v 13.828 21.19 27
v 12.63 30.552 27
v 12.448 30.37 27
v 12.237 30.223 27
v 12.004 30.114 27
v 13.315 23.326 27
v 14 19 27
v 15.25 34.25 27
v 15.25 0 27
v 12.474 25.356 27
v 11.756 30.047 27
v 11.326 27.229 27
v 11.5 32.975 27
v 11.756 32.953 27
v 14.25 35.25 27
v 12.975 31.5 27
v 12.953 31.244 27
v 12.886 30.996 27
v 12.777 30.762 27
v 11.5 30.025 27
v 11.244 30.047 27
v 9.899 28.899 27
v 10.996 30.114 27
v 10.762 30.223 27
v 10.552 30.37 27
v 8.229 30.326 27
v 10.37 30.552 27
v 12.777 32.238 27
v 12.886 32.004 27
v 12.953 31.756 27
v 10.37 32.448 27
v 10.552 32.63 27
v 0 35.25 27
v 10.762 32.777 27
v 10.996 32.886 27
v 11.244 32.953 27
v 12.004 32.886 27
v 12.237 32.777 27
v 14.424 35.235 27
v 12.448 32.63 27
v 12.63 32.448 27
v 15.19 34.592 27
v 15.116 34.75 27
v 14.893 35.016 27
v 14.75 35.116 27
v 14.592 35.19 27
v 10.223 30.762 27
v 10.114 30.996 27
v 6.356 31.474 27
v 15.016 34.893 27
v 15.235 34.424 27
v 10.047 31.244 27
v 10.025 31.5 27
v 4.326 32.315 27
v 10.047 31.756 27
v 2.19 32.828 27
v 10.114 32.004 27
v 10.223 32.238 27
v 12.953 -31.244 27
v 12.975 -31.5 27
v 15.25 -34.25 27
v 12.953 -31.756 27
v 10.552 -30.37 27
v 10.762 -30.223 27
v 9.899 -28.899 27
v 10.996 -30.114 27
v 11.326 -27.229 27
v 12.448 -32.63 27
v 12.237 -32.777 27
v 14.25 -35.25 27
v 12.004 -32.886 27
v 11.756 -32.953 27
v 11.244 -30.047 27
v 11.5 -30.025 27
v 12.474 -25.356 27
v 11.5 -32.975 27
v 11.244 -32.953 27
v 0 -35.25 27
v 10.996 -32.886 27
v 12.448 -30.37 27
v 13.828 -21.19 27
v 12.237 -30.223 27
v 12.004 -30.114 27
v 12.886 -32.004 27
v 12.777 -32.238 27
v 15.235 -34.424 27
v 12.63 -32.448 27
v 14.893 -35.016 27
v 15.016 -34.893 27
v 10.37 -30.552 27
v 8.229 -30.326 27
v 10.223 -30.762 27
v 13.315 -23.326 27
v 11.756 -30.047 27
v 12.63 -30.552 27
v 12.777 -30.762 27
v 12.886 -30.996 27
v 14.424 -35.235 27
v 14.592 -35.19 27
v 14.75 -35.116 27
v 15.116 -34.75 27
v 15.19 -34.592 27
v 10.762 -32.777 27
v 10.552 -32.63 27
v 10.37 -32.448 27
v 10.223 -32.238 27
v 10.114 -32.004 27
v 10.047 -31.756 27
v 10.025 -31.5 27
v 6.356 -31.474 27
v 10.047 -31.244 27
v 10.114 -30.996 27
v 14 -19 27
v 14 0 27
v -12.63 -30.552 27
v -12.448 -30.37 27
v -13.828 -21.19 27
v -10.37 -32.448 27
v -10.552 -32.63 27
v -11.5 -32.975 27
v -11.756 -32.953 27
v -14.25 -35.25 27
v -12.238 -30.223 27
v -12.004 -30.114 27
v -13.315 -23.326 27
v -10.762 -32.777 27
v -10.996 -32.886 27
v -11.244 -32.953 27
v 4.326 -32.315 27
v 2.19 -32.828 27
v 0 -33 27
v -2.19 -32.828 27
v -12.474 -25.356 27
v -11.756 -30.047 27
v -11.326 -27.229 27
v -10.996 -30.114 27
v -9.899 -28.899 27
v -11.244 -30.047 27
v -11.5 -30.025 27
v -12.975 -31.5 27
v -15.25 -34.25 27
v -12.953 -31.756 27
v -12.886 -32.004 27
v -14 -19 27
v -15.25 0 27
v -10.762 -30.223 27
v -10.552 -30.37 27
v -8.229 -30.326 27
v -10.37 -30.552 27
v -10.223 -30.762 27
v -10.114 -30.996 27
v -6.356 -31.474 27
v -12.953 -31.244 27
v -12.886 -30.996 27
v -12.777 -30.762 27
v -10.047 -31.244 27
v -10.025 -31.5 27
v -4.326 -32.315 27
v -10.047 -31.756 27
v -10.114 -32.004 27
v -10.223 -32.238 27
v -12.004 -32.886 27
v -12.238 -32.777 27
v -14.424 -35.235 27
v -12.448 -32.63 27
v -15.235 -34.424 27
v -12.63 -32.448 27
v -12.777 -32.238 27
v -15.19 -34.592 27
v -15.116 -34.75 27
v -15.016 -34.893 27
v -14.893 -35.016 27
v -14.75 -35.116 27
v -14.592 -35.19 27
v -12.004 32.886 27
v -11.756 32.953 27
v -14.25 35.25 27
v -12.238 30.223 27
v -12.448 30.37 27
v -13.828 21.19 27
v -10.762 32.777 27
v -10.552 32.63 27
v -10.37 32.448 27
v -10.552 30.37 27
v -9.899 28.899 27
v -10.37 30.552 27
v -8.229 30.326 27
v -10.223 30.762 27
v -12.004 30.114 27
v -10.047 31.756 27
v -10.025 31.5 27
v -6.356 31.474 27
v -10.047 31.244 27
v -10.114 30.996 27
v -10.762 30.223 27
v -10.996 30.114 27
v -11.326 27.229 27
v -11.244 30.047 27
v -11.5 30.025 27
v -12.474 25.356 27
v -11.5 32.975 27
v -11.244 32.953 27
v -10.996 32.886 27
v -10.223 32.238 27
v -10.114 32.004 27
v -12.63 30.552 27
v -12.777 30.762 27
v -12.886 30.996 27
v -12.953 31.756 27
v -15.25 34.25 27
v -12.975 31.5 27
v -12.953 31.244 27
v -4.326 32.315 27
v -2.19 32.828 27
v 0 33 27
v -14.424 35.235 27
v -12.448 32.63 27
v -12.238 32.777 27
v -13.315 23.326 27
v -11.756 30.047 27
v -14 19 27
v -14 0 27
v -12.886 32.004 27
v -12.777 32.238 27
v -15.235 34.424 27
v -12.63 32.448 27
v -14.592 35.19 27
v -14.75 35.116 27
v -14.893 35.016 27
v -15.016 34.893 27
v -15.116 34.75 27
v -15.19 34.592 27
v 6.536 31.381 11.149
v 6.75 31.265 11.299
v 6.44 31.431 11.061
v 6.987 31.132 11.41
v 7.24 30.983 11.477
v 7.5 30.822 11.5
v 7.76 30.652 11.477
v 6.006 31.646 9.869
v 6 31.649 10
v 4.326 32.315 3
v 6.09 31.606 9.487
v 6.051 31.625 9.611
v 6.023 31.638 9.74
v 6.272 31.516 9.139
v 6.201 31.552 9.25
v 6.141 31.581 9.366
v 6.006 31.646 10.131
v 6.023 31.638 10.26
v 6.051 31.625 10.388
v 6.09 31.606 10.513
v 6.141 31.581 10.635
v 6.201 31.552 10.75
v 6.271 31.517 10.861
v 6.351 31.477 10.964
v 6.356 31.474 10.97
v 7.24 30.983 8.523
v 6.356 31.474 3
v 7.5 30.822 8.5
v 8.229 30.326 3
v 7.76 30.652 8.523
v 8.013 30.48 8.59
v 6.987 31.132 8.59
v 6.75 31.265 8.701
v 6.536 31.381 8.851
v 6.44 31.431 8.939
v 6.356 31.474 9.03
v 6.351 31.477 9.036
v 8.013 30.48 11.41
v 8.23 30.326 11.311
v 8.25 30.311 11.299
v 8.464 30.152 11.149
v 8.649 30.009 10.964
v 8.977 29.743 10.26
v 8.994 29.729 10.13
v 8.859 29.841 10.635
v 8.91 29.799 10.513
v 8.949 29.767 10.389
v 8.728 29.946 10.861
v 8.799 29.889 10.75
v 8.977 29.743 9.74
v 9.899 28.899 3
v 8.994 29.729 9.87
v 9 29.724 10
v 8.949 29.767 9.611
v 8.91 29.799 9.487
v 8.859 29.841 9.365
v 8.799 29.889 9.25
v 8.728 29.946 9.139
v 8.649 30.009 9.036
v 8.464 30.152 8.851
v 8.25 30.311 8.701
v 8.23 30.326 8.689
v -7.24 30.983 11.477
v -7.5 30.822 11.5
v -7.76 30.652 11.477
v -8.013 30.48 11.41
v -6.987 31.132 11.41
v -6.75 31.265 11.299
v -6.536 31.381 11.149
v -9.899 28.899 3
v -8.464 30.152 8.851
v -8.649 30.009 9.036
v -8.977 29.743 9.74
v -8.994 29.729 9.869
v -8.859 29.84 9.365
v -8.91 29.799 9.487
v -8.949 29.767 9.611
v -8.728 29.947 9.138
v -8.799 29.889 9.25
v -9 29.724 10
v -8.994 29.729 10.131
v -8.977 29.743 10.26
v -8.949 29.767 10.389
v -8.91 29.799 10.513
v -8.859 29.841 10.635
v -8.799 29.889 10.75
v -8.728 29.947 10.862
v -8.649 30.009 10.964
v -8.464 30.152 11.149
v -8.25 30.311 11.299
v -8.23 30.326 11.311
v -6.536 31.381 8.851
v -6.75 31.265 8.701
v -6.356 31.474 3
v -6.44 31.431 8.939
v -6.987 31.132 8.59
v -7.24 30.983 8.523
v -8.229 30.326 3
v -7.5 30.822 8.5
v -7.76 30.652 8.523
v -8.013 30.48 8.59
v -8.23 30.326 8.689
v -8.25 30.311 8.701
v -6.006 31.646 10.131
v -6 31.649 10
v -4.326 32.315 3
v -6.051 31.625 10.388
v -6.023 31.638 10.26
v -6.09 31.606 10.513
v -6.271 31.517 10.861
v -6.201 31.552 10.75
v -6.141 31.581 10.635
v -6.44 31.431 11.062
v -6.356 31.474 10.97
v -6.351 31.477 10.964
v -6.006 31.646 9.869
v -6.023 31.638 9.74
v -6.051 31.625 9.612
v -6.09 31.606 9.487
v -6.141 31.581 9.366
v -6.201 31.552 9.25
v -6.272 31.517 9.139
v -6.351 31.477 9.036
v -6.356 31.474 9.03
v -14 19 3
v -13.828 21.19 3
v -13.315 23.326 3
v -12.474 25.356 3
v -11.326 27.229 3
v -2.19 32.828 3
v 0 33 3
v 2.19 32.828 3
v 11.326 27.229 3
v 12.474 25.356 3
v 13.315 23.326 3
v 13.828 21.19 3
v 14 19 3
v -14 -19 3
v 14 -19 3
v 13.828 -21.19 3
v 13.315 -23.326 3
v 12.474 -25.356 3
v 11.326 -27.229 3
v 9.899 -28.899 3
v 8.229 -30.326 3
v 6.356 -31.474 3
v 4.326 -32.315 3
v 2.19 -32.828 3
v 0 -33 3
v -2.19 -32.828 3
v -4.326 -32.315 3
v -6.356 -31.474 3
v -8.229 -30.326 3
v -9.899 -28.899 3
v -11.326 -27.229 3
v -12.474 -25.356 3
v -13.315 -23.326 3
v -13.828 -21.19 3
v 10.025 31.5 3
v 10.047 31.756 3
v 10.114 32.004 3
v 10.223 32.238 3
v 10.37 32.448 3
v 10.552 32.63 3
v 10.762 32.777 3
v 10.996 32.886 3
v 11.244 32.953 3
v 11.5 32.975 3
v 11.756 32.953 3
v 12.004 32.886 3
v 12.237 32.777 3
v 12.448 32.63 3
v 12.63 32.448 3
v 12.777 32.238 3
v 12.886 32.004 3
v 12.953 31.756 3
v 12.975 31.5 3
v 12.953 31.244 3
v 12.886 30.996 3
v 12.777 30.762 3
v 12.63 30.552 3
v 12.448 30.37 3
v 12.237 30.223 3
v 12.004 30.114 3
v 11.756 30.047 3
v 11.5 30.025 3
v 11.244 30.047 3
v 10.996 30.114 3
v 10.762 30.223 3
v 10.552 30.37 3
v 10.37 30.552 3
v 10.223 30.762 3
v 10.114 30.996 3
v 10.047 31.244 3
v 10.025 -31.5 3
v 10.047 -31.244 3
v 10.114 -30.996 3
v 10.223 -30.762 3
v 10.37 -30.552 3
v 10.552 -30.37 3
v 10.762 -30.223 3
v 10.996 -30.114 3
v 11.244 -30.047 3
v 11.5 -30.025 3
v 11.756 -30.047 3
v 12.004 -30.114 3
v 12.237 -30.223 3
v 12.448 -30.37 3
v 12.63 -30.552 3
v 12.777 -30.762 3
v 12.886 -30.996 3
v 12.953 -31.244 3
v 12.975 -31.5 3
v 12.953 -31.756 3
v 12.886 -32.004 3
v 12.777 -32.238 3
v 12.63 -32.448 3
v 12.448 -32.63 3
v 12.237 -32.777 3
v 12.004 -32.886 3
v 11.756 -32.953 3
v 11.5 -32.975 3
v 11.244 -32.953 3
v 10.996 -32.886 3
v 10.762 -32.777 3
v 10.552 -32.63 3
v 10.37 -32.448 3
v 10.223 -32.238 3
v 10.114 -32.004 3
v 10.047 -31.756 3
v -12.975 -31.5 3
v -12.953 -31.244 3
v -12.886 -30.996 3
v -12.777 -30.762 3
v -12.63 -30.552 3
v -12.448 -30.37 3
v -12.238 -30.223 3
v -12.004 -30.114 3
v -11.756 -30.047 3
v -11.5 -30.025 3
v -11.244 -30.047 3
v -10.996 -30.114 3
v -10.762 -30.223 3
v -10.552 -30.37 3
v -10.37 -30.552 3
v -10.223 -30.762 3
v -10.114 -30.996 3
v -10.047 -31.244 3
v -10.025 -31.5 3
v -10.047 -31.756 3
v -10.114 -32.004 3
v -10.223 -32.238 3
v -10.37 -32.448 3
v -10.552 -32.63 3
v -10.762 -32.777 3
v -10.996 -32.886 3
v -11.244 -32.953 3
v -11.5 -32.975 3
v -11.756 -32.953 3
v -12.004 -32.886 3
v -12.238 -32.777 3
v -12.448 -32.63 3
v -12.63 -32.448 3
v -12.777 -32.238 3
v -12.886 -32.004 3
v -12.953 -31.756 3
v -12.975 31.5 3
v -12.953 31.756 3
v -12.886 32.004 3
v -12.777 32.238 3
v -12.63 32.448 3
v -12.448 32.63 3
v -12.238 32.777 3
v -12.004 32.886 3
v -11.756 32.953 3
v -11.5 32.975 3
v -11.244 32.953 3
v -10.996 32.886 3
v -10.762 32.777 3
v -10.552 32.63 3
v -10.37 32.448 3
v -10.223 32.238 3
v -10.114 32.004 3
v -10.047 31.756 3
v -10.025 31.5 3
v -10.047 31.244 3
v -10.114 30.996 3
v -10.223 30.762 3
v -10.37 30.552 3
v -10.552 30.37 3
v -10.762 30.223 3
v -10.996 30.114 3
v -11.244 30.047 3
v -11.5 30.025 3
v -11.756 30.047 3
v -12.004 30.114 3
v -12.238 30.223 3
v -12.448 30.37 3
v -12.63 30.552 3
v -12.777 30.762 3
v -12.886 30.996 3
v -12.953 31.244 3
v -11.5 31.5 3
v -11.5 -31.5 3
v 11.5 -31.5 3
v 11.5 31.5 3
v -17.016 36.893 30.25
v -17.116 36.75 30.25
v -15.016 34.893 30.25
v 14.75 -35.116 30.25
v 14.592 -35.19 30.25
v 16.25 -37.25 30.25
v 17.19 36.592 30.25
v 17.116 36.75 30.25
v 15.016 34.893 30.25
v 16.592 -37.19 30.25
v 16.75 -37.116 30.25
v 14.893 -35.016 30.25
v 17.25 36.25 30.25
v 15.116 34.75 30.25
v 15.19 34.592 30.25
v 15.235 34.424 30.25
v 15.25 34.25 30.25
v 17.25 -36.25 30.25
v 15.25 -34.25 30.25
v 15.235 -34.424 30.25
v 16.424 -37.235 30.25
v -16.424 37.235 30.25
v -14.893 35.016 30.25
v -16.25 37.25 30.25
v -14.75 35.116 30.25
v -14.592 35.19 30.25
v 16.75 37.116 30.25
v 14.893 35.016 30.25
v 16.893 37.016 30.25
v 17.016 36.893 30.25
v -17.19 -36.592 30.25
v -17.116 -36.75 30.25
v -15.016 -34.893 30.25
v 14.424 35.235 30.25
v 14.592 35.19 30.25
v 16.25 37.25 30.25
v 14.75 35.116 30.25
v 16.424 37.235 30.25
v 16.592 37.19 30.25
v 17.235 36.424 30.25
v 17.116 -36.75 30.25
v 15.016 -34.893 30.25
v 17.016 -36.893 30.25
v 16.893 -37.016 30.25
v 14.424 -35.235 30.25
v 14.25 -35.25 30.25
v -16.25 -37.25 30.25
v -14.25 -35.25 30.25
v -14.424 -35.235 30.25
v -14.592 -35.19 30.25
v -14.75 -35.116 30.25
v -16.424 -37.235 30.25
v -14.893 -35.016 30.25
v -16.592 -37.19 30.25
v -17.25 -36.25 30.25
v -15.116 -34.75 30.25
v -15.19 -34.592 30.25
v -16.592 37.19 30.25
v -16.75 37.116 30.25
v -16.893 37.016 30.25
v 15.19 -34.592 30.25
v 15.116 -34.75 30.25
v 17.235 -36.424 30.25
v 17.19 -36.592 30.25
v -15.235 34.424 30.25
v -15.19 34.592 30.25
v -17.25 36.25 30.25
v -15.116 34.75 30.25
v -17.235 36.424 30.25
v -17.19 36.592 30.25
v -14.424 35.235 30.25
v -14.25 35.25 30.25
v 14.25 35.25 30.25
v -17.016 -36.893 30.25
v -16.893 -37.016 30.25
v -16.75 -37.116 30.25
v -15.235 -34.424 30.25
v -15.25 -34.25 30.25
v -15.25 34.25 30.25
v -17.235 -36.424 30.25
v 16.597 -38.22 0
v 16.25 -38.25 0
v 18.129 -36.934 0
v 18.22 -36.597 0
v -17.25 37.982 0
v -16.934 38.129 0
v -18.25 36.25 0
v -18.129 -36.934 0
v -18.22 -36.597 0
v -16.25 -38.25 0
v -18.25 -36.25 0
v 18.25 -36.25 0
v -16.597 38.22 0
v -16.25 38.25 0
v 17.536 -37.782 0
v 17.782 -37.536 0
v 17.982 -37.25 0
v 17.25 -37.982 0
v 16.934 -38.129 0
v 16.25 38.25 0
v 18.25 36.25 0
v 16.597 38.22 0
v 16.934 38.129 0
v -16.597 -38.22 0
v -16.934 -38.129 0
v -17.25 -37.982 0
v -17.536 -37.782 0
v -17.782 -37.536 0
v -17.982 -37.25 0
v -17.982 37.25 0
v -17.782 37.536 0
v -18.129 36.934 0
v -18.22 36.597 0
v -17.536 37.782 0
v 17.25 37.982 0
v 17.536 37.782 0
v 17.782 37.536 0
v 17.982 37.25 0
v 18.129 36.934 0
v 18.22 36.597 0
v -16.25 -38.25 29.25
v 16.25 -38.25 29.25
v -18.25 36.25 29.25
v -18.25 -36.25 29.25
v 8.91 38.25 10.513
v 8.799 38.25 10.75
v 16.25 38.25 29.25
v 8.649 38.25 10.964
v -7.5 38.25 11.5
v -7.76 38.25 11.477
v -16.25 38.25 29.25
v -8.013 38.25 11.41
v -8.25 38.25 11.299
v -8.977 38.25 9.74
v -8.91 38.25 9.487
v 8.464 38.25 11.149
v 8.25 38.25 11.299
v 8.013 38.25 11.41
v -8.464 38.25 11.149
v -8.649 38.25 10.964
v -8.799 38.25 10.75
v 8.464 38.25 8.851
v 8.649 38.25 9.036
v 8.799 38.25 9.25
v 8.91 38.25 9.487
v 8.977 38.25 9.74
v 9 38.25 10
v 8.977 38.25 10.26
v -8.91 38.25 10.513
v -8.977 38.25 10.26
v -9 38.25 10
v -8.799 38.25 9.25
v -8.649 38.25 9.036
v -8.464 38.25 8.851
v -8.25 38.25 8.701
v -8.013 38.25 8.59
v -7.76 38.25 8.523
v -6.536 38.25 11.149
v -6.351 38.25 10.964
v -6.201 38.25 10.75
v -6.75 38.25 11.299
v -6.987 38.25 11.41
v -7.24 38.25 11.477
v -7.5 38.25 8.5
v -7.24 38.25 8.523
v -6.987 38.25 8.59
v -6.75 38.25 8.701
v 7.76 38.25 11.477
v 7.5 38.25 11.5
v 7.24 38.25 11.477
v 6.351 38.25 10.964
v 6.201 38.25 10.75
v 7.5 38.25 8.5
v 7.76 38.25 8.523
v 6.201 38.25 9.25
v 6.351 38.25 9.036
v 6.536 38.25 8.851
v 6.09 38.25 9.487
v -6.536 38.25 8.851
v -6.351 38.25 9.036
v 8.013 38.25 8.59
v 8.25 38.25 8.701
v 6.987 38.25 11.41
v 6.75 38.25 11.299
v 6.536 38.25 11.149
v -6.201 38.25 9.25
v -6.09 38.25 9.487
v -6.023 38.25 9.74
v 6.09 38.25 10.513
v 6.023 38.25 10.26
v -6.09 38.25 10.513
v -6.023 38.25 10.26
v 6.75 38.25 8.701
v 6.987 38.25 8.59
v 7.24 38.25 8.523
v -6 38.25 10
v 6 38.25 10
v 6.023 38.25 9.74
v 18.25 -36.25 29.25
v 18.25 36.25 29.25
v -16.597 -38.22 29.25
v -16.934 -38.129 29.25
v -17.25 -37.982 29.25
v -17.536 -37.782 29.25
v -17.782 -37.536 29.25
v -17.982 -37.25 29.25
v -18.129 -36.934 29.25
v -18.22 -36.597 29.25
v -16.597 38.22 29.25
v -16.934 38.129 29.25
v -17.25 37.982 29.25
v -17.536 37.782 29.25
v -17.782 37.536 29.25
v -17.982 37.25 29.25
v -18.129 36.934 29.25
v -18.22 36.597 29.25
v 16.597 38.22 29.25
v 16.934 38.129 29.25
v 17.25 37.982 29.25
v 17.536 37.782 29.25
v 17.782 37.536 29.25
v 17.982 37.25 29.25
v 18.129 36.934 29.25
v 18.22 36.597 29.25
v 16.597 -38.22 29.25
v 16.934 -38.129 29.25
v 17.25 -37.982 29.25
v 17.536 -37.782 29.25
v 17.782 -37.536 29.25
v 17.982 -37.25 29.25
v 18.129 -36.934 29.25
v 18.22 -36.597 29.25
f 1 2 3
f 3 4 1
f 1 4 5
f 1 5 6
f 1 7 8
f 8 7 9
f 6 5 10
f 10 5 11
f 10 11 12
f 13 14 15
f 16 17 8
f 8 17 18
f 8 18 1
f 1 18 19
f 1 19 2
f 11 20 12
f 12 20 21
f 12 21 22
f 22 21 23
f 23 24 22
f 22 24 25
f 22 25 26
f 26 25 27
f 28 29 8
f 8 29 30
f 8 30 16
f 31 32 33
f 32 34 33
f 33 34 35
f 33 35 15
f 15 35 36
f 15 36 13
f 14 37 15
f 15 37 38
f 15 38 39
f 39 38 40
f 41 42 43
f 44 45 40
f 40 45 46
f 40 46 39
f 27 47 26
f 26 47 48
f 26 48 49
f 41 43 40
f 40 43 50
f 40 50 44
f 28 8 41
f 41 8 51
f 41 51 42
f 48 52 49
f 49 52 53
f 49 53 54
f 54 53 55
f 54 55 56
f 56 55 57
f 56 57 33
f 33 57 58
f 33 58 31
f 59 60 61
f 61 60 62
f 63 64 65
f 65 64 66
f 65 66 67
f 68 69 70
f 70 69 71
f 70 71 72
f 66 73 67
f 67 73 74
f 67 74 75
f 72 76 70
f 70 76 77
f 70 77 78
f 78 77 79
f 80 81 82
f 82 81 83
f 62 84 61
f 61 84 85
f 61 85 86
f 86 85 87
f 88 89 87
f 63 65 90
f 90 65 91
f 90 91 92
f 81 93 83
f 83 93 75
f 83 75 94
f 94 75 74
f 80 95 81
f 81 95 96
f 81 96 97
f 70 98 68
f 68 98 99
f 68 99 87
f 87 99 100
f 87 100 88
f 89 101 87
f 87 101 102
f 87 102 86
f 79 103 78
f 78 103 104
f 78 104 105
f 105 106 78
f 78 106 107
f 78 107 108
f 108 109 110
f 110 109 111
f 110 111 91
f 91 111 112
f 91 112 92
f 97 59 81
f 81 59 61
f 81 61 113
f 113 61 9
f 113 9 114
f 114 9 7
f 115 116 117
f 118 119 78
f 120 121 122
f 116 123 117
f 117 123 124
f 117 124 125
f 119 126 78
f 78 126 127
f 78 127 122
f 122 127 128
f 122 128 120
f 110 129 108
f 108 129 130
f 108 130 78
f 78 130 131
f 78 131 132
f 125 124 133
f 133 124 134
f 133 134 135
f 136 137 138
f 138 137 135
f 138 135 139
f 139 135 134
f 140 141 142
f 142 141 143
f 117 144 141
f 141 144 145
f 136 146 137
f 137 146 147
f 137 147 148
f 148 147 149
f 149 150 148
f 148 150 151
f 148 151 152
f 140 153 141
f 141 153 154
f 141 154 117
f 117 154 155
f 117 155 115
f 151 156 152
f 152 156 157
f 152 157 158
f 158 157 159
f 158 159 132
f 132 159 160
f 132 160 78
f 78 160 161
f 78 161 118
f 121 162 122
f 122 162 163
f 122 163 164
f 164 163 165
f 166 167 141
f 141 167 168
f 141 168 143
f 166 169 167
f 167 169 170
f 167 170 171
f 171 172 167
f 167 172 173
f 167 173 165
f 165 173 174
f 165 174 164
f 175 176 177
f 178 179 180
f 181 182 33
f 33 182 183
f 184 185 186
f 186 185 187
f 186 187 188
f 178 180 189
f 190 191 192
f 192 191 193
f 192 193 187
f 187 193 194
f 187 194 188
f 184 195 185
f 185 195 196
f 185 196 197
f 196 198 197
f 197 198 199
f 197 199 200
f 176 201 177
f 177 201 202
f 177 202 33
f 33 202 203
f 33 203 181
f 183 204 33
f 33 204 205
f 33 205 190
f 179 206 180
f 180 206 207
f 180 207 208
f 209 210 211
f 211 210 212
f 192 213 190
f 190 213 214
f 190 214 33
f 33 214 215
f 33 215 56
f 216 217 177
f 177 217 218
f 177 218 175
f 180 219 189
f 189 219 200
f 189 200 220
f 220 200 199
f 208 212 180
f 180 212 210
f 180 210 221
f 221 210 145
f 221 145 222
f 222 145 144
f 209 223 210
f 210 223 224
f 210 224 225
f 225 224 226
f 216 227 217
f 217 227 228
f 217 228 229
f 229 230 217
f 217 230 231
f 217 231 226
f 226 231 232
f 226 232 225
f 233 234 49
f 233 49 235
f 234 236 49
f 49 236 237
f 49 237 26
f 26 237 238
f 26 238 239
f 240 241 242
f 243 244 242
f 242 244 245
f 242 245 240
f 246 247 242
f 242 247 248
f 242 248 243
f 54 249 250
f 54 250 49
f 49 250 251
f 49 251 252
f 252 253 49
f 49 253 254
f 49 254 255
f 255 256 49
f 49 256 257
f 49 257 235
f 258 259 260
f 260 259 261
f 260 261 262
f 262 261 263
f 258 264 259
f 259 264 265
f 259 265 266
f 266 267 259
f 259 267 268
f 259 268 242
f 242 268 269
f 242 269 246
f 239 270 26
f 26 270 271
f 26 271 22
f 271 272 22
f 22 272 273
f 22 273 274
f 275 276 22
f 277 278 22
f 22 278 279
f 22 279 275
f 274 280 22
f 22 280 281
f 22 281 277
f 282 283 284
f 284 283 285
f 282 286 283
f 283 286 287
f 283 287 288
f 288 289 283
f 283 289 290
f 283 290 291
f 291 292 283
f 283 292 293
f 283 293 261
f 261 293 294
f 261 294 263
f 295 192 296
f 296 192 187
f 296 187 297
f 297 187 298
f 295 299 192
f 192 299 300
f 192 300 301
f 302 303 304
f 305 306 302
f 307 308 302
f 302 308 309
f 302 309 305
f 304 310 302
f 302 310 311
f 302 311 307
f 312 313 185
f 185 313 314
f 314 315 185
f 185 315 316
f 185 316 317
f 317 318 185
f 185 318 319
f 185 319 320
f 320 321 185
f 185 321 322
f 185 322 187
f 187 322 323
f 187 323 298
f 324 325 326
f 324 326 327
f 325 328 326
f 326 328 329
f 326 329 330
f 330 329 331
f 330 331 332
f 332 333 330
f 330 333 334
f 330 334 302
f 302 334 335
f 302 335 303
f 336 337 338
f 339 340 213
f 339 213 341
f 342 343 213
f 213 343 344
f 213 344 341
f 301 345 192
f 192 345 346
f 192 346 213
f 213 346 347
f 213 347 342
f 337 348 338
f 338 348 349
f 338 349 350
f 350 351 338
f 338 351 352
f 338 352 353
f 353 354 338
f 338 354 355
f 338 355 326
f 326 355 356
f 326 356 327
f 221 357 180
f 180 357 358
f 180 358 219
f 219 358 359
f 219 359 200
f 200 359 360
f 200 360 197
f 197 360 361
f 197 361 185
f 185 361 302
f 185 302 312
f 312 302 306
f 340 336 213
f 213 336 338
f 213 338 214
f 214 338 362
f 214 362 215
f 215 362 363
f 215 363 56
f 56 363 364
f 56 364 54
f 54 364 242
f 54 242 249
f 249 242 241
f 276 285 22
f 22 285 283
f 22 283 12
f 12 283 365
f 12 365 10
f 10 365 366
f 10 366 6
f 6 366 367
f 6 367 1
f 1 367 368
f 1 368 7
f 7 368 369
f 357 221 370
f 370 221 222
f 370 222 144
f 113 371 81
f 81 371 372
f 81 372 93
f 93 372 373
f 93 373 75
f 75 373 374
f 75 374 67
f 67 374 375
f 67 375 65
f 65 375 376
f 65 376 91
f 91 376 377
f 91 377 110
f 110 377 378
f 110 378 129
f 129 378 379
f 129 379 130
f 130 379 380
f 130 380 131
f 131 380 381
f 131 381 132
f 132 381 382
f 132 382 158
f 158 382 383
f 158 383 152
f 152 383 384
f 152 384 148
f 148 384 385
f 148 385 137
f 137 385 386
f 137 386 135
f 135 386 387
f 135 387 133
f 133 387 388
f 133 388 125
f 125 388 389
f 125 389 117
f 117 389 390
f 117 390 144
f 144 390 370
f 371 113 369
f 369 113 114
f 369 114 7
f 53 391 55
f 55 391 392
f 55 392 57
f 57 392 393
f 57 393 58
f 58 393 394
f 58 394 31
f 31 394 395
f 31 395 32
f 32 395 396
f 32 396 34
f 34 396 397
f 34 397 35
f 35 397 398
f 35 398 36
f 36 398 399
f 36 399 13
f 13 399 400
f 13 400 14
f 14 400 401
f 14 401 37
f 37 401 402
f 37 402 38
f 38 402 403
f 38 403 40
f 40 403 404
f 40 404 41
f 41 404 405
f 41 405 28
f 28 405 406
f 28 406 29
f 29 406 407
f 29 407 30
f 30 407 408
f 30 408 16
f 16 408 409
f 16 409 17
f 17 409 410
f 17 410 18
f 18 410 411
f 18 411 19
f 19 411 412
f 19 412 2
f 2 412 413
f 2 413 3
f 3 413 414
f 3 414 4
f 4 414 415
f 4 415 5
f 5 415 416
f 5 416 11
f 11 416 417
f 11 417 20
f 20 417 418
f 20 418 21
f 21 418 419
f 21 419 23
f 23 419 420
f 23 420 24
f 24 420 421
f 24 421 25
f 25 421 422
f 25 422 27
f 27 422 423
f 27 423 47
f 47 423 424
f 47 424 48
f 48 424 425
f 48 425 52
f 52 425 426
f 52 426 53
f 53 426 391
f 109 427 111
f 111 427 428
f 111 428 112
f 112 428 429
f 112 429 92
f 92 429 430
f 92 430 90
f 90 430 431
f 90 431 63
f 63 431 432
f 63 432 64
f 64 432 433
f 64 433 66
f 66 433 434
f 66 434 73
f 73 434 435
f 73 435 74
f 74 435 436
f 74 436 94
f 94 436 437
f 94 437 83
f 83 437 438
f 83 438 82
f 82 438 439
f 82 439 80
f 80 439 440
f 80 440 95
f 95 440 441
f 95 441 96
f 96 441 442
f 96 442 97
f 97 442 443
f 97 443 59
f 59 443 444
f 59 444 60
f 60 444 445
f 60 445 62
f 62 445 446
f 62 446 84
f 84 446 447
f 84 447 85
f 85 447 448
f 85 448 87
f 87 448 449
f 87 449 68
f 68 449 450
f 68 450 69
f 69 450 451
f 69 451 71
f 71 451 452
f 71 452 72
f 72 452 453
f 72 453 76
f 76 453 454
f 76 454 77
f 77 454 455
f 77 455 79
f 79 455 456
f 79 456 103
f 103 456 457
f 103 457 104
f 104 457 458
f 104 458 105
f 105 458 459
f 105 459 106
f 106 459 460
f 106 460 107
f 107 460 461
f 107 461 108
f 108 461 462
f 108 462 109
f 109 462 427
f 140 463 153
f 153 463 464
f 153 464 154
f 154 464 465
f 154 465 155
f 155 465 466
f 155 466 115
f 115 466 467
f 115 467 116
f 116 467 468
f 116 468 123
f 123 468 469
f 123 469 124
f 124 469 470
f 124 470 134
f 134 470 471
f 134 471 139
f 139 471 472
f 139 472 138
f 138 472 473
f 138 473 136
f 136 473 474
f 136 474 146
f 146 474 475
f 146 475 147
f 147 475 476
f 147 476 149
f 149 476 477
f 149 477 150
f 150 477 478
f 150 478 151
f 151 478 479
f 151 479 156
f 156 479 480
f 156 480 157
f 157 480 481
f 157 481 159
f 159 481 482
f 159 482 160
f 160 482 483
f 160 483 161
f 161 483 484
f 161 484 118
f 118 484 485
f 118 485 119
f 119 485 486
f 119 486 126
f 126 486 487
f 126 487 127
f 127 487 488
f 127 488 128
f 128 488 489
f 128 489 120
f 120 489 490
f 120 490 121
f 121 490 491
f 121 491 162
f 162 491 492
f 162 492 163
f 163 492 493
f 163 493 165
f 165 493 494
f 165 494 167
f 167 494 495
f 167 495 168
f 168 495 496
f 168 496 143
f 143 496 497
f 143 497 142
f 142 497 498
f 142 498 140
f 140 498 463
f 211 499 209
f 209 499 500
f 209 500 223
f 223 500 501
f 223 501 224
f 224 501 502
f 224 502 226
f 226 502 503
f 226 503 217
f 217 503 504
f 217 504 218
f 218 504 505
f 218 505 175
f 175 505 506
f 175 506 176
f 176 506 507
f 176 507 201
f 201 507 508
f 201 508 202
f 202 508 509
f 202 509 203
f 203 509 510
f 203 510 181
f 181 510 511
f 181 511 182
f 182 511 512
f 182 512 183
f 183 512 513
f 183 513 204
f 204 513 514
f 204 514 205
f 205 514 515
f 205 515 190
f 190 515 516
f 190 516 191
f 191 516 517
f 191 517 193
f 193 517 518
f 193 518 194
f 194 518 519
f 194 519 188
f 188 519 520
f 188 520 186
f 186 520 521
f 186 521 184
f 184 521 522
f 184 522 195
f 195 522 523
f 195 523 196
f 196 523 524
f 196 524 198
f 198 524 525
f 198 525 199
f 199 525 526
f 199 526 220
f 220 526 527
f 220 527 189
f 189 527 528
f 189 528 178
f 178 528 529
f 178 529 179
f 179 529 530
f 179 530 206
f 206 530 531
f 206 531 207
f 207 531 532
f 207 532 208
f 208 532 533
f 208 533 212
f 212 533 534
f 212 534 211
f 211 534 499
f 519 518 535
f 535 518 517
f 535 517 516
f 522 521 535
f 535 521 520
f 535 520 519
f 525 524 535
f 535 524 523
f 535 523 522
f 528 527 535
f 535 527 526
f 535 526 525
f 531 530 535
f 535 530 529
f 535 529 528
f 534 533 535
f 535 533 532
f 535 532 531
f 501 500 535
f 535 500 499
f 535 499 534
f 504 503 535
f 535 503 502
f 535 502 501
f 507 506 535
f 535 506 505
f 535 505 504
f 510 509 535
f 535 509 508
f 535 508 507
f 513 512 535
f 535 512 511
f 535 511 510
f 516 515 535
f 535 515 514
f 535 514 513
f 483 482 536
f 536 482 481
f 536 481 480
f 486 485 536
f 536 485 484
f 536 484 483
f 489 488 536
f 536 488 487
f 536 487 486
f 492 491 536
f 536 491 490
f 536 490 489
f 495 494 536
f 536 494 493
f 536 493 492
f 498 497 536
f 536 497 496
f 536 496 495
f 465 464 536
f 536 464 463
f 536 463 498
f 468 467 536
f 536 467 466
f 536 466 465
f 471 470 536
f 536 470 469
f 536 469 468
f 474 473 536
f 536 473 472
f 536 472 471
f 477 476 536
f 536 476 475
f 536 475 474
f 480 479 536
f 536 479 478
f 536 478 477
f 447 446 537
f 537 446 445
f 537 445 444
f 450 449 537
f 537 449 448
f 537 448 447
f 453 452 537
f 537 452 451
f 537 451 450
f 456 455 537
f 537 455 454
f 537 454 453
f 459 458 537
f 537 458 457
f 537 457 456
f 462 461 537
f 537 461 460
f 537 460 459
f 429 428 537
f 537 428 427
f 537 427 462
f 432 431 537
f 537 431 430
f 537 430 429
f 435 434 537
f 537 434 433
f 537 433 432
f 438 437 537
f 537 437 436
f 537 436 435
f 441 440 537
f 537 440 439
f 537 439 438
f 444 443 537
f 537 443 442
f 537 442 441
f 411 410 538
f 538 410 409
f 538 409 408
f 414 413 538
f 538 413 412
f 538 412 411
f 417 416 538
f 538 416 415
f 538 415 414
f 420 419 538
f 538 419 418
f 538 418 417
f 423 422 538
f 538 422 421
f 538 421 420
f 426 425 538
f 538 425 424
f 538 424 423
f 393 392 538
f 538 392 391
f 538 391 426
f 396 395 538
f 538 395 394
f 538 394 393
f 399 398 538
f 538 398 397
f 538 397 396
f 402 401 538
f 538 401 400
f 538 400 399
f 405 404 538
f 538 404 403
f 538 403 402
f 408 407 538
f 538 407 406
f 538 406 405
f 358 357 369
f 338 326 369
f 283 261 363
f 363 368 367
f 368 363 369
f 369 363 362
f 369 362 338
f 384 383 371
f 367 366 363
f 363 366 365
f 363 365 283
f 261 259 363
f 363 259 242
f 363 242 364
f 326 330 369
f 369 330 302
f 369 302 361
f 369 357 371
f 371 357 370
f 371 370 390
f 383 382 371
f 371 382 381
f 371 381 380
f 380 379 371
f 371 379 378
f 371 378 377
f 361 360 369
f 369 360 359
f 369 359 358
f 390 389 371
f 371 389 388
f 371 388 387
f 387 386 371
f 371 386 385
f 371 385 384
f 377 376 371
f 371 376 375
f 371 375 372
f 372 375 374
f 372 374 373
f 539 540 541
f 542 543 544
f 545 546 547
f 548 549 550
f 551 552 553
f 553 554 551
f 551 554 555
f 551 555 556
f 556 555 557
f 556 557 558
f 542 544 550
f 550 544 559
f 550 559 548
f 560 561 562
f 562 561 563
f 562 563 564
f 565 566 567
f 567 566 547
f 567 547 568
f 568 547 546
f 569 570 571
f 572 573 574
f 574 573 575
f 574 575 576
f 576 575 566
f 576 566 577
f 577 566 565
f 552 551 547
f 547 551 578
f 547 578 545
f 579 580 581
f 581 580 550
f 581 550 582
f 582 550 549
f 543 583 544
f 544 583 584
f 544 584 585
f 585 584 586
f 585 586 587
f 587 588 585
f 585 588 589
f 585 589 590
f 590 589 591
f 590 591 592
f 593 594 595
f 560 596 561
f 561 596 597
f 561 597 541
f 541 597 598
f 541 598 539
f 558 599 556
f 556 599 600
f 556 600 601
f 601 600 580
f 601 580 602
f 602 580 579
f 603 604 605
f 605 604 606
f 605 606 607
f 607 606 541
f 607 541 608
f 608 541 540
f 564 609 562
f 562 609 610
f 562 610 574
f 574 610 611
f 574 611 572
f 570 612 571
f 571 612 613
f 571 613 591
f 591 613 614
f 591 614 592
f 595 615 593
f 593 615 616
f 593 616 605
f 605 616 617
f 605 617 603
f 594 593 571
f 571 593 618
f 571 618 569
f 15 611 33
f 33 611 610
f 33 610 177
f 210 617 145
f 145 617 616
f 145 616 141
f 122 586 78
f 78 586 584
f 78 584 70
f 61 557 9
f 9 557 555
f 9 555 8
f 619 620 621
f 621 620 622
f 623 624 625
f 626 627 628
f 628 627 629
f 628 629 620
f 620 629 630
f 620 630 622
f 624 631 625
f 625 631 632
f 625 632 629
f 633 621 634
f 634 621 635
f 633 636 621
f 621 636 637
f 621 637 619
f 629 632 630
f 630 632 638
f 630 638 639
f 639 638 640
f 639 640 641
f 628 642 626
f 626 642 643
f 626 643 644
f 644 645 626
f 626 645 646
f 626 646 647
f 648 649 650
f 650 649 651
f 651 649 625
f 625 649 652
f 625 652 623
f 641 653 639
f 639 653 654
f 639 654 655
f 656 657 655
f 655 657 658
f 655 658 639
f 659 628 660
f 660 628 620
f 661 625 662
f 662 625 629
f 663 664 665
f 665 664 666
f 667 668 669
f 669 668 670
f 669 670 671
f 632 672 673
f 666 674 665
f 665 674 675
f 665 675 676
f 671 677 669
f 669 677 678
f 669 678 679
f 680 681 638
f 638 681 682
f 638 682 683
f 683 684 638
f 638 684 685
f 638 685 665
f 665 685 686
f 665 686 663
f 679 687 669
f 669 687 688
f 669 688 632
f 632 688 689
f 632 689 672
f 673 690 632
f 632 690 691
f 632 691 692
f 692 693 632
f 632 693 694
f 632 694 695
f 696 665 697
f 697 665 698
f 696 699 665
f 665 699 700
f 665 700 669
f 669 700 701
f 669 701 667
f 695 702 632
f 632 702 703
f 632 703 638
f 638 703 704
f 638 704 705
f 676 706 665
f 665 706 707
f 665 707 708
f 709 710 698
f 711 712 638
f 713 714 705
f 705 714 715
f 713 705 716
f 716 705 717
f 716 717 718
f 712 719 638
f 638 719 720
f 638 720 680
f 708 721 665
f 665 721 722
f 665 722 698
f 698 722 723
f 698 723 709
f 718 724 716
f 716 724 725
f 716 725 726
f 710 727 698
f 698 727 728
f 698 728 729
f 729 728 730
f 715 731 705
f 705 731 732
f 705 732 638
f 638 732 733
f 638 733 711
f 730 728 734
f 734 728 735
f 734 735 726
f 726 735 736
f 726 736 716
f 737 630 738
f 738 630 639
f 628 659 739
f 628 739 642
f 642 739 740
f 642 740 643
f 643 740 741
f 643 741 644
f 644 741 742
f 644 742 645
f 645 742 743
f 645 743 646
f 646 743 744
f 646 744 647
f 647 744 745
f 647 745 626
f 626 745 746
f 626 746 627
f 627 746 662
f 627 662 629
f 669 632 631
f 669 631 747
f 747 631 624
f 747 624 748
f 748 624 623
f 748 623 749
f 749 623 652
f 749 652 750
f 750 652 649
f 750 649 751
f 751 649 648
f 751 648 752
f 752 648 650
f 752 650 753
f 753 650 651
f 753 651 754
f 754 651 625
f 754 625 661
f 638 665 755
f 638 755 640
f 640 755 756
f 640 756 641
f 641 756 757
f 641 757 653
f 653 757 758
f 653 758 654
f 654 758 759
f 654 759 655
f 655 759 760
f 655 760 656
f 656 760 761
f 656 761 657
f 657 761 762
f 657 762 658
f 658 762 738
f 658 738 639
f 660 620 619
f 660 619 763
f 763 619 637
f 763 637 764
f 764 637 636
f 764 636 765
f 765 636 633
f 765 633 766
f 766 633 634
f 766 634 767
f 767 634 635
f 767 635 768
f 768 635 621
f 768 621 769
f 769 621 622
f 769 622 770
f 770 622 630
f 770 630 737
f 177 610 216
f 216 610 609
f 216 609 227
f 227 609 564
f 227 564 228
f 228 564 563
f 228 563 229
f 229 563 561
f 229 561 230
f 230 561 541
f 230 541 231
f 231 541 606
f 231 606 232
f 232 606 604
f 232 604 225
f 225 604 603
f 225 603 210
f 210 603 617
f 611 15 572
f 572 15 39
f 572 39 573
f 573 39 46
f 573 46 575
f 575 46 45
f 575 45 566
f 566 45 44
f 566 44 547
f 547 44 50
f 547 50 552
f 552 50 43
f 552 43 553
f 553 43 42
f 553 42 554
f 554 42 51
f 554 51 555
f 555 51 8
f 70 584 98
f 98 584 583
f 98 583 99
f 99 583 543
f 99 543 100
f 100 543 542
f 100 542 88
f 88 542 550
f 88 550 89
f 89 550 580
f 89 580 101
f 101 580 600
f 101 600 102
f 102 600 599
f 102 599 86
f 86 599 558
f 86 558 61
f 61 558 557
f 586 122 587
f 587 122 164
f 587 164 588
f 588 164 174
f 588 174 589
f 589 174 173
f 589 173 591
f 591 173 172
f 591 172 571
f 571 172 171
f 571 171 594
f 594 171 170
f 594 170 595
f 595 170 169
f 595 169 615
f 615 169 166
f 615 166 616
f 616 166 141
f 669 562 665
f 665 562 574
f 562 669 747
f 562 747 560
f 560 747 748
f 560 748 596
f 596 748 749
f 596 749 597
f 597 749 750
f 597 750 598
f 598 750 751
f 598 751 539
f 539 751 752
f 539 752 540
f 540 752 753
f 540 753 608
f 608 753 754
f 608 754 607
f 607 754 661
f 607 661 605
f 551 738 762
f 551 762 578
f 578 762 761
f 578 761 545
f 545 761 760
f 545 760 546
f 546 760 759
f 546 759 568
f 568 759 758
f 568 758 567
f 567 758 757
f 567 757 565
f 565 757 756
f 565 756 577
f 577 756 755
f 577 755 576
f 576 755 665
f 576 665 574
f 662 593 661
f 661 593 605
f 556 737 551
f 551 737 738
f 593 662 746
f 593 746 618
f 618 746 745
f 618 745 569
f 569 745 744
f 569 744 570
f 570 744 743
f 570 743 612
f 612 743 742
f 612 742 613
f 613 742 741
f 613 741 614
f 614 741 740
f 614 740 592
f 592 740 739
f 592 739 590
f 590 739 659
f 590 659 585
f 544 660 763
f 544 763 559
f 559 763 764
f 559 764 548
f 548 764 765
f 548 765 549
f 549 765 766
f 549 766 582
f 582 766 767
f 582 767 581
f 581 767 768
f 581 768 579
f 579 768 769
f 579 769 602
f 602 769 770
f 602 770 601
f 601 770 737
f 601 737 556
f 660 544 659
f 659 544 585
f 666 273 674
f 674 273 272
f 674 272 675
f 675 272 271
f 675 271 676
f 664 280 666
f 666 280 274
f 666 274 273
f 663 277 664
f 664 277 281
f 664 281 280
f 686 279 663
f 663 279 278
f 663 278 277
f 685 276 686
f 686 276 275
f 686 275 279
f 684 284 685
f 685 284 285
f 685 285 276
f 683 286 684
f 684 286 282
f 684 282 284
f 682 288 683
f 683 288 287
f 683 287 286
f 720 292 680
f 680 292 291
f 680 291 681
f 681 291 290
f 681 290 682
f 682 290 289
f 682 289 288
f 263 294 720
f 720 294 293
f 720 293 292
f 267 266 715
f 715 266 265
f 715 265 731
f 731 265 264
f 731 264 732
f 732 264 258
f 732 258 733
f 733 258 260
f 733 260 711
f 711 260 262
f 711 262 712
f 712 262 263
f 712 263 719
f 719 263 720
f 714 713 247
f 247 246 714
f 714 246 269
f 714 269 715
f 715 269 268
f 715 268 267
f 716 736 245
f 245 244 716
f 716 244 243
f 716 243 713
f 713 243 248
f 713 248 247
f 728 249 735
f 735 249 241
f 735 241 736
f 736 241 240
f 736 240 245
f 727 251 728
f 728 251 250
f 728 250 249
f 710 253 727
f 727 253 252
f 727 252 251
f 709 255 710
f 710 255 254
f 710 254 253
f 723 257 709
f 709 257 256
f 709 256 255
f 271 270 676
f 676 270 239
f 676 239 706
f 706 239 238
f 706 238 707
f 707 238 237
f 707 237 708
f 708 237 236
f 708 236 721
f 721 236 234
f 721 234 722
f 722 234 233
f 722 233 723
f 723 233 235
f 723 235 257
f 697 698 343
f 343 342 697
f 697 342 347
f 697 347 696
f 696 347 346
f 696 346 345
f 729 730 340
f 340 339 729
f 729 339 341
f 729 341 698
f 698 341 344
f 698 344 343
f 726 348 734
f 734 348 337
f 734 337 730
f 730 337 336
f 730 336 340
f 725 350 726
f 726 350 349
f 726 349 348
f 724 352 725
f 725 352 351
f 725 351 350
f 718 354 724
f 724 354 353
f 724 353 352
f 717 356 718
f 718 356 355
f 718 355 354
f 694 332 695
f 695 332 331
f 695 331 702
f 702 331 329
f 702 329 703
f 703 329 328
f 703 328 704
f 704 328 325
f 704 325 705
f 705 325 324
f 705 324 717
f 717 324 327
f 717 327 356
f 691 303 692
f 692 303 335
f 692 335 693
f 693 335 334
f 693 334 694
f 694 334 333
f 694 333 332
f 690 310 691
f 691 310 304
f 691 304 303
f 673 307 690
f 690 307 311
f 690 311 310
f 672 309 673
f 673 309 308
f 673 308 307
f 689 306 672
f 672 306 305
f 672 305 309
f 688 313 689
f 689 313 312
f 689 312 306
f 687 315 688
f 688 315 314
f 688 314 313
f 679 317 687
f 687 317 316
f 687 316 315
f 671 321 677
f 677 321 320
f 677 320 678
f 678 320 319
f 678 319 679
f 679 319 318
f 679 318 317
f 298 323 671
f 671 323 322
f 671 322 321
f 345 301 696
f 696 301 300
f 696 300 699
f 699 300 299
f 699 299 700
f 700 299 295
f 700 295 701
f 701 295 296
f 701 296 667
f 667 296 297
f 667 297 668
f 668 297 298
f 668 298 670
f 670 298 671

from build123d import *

# Parameters (mm, degrees)
BASE_SKETCH_W           = 36.5
BASE_SKETCH_H           = 76.5
BASE_SKETCH_W_2         = 30.5
BASE_SKETCH_H_2         = 70.5
BASE_SKETCH_R           = 1.475
BOSS_EXTRUDE1_DEPTH     = 3
BOSS_EXTRUDE2_START     = 3
BASE_SKETCH_8_W         = 36.5
BASE_SKETCH_8_H         = 76.5
BASE_SKETCH_8_W_2       = 30.5
BASE_SKETCH_8_H_2       = 70.5
BASE_SKETCH_8_R         = 1.475
BOSS_EXTRUDE2_DEPTH     = 24
BOSS_EXTRUDE3_START     = 27
BASE_SKETCH_9_W         = 36.5
BASE_SKETCH_9_H         = 76.5
BASE_SKETCH_9_W_2       = 30.5
BASE_SKETCH_9_H_2       = 70.5
BOSS_EXTRUDE3_DEPTH     = 3.25
FILLET1_R               = 2
FILLET2_R               = 1
CHAMFER1_SIZE           = 1
CUT_EXTRUDE1_REACH      = 86.264
CUT_EXTRUDE1_END_RADIUS = 14
SKETCH1_R               = 1.5


with BuildPart() as part:
    # Base_Sketch → Boss-Extrude1 (new body)
    # profile 1 of 7: a face of its own
    with BuildSketch(Plane.XY):
        Rectangle(BASE_SKETCH_W, BASE_SKETCH_H)
        Rectangle(BASE_SKETCH_W_2, BASE_SKETCH_H_2, mode=Mode.SUBTRACT)
    # profile 2 of 7: a face of its own
    with BuildSketch(Plane.XY):
        Rectangle(BASE_SKETCH_W_2, BASE_SKETCH_H_2)
        with Locations((-11.5, -31.5)):
            Circle(BASE_SKETCH_R, mode=Mode.SUBTRACT)
        with Locations((11.5, -31.5)):
            Circle(BASE_SKETCH_R, mode=Mode.SUBTRACT)
        with Locations((11.5, 31.5)):
            Circle(BASE_SKETCH_R, mode=Mode.SUBTRACT)
        with Locations((-11.5, 31.5)):
            Circle(BASE_SKETCH_R, mode=Mode.SUBTRACT)
        with BuildLine():
            ThreePointArc((-14, -19), (0, -33), (14, -19))
            Line((14, -19), (14, 19))
            ThreePointArc((14, 19), (0, 33), (-14, 19))
            Line((-14, 19), (-14, -19))
        make_face(mode=Mode.SUBTRACT)
    # profile 3 of 7: a face of its own
    with BuildSketch(Plane.XY):
        with Locations((-11.5, -31.5)):
            Circle(BASE_SKETCH_R)
    # profile 4 of 7: a face of its own
    with BuildSketch(Plane.XY):
        with Locations((11.5, -31.5)):
            Circle(BASE_SKETCH_R)
    # profile 5 of 7: a face of its own
    with BuildSketch(Plane.XY):
        with Locations((11.5, 31.5)):
            Circle(BASE_SKETCH_R)
    # profile 6 of 7: a face of its own
    with BuildSketch(Plane.XY):
        with Locations((-11.5, 31.5)):
            Circle(BASE_SKETCH_R)
    # profile 7 of 7: a face of its own
    with BuildSketch(Plane.XY):
        with BuildLine():
            Line((-14, 19), (-14, -19))
            ThreePointArc((-14, -19), (0, -33), (14, -19))
            Line((14, -19), (14, 19))
            ThreePointArc((14, 19), (0, 33), (-14, 19))
        make_face()
    extrude(amount=BOSS_EXTRUDE1_DEPTH)

    # Base_Sketch<8> → Boss-Extrude2 (add)
    # profile 1 of 2: a face of its own
    with BuildSketch(Plane.XY.offset(BOSS_EXTRUDE2_START)):
        Rectangle(BASE_SKETCH_8_W, BASE_SKETCH_8_H)
        Rectangle(BASE_SKETCH_8_W_2, BASE_SKETCH_8_H_2, mode=Mode.SUBTRACT)
    # profile 2 of 2: a face of its own
    with BuildSketch(Plane.XY.offset(BOSS_EXTRUDE2_START)):
        Rectangle(BASE_SKETCH_8_W_2, BASE_SKETCH_8_H_2)
        with Locations((-11.5, -31.5)):
            Circle(BASE_SKETCH_8_R, mode=Mode.SUBTRACT)
        with Locations((11.5, -31.5)):
            Circle(BASE_SKETCH_8_R, mode=Mode.SUBTRACT)
        with Locations((11.5, 31.5)):
            Circle(BASE_SKETCH_8_R, mode=Mode.SUBTRACT)
        with Locations((-11.5, 31.5)):
            Circle(BASE_SKETCH_8_R, mode=Mode.SUBTRACT)
        with BuildLine():
            ThreePointArc((-14, -19), (0, -33), (14, -19))
            Line((14, -19), (14, 19))
            ThreePointArc((14, 19), (0, 33), (-14, 19))
            Line((-14, 19), (-14, -19))
        make_face(mode=Mode.SUBTRACT)
    extrude(amount=BOSS_EXTRUDE2_DEPTH)

    # Base_Sketch<9> → Boss-Extrude3 (add)
    with BuildSketch(Plane.XY.offset(BOSS_EXTRUDE3_START)):
        Rectangle(BASE_SKETCH_9_W, BASE_SKETCH_9_H)
        Rectangle(BASE_SKETCH_9_W_2, BASE_SKETCH_9_H_2, mode=Mode.SUBTRACT)
    extrude(amount=BOSS_EXTRUDE3_DEPTH)

    # Fillet1
    fillet1_edges = [part.edges().sort_by_distance(p)[0] for p in [
        (-18.25, 38.25, 15.125),
        (18.25, 38.25, 15.125),
        (18.25, -38.25, 15.125),
        (-18.25, -38.25, 15.125),
    ]]
    fillet(fillet1_edges, radius=FILLET1_R)

    # Fillet2
    fillet2_edges = [part.edges().sort_by_distance(p)[0] for p in [
        (-15.25, 35.25, 28.625),
        (-15.25, -35.25, 28.625),
        (15.25, -35.25, 28.625),
        (15.25, 35.25, 28.625),
    ]]
    fillet(fillet2_edges, radius=FILLET2_R)

    # Chamfer1
    chamfer1_edges = [part.edges().sort_by_distance(p)[0] for p in [
        (0, -38.25, 30.25),
        (-18.25, 0, 30.25),
        (18.25, 0, 30.25),
        (0, 38.25, 30.25),
        (17.664213562, -37.664213562, 30.25),
        (17.664213562, 37.664213562, 30.25),
        (-17.664213562, 37.664213562, 30.25),
        (-17.664213562, -37.664213562, 30.25),
    ]]
    chamfer(chamfer1_edges, length=CHAMFER1_SIZE)

    # Cut-Extrude1: up to this cylinder (the profile starts outside it)
    cut_extrude1_end = Plane(origin=(0, 19, 10), z_dir=(0, 0, -1)) * Cylinder(CUT_EXTRUDE1_END_RADIUS, 201.528, mode=Mode.PRIVATE)
    # Sketch1 → Cut-Extrude1 (cut, up to the surface)
    with BuildSketch(Plane(origin=(0, 38.25, 0), x_dir=(1, 0, 0), z_dir=(0, 1, 0)), mode=Mode.PRIVATE) as cut_extrude1_sk1:
        with Locations(Location((-7.5, -10, 0), (0, 0, 270))):
            Circle(SKETCH1_R)
    cut_extrude1_tool1 = extrude(cut_extrude1_sk1.sketch, amount=-CUT_EXTRUDE1_REACH, mode=Mode.PRIVATE) - cut_extrude1_end
    add(cut_extrude1_tool1.solids().sort_by_distance((-7.5, 38.25, 10))[0], mode=Mode.SUBTRACT)
    # Sketch1 → Cut-Extrude1 (cut, up to the surface)
    with BuildSketch(Plane(origin=(0, 38.25, 0), x_dir=(1, 0, 0), z_dir=(0, 1, 0)), mode=Mode.PRIVATE) as cut_extrude1_sk2:
        with Locations(Location((7.5, -10, 0), (0, 0, 270))):
            Circle(SKETCH1_R)
    cut_extrude1_tool2 = extrude(cut_extrude1_sk2.sketch, amount=-CUT_EXTRUDE1_REACH, mode=Mode.PRIVATE) - cut_extrude1_end
    add(cut_extrude1_tool2.solids().sort_by_distance((7.5, 38.25, 10))[0], mode=Mode.SUBTRACT)


solid = part.part
